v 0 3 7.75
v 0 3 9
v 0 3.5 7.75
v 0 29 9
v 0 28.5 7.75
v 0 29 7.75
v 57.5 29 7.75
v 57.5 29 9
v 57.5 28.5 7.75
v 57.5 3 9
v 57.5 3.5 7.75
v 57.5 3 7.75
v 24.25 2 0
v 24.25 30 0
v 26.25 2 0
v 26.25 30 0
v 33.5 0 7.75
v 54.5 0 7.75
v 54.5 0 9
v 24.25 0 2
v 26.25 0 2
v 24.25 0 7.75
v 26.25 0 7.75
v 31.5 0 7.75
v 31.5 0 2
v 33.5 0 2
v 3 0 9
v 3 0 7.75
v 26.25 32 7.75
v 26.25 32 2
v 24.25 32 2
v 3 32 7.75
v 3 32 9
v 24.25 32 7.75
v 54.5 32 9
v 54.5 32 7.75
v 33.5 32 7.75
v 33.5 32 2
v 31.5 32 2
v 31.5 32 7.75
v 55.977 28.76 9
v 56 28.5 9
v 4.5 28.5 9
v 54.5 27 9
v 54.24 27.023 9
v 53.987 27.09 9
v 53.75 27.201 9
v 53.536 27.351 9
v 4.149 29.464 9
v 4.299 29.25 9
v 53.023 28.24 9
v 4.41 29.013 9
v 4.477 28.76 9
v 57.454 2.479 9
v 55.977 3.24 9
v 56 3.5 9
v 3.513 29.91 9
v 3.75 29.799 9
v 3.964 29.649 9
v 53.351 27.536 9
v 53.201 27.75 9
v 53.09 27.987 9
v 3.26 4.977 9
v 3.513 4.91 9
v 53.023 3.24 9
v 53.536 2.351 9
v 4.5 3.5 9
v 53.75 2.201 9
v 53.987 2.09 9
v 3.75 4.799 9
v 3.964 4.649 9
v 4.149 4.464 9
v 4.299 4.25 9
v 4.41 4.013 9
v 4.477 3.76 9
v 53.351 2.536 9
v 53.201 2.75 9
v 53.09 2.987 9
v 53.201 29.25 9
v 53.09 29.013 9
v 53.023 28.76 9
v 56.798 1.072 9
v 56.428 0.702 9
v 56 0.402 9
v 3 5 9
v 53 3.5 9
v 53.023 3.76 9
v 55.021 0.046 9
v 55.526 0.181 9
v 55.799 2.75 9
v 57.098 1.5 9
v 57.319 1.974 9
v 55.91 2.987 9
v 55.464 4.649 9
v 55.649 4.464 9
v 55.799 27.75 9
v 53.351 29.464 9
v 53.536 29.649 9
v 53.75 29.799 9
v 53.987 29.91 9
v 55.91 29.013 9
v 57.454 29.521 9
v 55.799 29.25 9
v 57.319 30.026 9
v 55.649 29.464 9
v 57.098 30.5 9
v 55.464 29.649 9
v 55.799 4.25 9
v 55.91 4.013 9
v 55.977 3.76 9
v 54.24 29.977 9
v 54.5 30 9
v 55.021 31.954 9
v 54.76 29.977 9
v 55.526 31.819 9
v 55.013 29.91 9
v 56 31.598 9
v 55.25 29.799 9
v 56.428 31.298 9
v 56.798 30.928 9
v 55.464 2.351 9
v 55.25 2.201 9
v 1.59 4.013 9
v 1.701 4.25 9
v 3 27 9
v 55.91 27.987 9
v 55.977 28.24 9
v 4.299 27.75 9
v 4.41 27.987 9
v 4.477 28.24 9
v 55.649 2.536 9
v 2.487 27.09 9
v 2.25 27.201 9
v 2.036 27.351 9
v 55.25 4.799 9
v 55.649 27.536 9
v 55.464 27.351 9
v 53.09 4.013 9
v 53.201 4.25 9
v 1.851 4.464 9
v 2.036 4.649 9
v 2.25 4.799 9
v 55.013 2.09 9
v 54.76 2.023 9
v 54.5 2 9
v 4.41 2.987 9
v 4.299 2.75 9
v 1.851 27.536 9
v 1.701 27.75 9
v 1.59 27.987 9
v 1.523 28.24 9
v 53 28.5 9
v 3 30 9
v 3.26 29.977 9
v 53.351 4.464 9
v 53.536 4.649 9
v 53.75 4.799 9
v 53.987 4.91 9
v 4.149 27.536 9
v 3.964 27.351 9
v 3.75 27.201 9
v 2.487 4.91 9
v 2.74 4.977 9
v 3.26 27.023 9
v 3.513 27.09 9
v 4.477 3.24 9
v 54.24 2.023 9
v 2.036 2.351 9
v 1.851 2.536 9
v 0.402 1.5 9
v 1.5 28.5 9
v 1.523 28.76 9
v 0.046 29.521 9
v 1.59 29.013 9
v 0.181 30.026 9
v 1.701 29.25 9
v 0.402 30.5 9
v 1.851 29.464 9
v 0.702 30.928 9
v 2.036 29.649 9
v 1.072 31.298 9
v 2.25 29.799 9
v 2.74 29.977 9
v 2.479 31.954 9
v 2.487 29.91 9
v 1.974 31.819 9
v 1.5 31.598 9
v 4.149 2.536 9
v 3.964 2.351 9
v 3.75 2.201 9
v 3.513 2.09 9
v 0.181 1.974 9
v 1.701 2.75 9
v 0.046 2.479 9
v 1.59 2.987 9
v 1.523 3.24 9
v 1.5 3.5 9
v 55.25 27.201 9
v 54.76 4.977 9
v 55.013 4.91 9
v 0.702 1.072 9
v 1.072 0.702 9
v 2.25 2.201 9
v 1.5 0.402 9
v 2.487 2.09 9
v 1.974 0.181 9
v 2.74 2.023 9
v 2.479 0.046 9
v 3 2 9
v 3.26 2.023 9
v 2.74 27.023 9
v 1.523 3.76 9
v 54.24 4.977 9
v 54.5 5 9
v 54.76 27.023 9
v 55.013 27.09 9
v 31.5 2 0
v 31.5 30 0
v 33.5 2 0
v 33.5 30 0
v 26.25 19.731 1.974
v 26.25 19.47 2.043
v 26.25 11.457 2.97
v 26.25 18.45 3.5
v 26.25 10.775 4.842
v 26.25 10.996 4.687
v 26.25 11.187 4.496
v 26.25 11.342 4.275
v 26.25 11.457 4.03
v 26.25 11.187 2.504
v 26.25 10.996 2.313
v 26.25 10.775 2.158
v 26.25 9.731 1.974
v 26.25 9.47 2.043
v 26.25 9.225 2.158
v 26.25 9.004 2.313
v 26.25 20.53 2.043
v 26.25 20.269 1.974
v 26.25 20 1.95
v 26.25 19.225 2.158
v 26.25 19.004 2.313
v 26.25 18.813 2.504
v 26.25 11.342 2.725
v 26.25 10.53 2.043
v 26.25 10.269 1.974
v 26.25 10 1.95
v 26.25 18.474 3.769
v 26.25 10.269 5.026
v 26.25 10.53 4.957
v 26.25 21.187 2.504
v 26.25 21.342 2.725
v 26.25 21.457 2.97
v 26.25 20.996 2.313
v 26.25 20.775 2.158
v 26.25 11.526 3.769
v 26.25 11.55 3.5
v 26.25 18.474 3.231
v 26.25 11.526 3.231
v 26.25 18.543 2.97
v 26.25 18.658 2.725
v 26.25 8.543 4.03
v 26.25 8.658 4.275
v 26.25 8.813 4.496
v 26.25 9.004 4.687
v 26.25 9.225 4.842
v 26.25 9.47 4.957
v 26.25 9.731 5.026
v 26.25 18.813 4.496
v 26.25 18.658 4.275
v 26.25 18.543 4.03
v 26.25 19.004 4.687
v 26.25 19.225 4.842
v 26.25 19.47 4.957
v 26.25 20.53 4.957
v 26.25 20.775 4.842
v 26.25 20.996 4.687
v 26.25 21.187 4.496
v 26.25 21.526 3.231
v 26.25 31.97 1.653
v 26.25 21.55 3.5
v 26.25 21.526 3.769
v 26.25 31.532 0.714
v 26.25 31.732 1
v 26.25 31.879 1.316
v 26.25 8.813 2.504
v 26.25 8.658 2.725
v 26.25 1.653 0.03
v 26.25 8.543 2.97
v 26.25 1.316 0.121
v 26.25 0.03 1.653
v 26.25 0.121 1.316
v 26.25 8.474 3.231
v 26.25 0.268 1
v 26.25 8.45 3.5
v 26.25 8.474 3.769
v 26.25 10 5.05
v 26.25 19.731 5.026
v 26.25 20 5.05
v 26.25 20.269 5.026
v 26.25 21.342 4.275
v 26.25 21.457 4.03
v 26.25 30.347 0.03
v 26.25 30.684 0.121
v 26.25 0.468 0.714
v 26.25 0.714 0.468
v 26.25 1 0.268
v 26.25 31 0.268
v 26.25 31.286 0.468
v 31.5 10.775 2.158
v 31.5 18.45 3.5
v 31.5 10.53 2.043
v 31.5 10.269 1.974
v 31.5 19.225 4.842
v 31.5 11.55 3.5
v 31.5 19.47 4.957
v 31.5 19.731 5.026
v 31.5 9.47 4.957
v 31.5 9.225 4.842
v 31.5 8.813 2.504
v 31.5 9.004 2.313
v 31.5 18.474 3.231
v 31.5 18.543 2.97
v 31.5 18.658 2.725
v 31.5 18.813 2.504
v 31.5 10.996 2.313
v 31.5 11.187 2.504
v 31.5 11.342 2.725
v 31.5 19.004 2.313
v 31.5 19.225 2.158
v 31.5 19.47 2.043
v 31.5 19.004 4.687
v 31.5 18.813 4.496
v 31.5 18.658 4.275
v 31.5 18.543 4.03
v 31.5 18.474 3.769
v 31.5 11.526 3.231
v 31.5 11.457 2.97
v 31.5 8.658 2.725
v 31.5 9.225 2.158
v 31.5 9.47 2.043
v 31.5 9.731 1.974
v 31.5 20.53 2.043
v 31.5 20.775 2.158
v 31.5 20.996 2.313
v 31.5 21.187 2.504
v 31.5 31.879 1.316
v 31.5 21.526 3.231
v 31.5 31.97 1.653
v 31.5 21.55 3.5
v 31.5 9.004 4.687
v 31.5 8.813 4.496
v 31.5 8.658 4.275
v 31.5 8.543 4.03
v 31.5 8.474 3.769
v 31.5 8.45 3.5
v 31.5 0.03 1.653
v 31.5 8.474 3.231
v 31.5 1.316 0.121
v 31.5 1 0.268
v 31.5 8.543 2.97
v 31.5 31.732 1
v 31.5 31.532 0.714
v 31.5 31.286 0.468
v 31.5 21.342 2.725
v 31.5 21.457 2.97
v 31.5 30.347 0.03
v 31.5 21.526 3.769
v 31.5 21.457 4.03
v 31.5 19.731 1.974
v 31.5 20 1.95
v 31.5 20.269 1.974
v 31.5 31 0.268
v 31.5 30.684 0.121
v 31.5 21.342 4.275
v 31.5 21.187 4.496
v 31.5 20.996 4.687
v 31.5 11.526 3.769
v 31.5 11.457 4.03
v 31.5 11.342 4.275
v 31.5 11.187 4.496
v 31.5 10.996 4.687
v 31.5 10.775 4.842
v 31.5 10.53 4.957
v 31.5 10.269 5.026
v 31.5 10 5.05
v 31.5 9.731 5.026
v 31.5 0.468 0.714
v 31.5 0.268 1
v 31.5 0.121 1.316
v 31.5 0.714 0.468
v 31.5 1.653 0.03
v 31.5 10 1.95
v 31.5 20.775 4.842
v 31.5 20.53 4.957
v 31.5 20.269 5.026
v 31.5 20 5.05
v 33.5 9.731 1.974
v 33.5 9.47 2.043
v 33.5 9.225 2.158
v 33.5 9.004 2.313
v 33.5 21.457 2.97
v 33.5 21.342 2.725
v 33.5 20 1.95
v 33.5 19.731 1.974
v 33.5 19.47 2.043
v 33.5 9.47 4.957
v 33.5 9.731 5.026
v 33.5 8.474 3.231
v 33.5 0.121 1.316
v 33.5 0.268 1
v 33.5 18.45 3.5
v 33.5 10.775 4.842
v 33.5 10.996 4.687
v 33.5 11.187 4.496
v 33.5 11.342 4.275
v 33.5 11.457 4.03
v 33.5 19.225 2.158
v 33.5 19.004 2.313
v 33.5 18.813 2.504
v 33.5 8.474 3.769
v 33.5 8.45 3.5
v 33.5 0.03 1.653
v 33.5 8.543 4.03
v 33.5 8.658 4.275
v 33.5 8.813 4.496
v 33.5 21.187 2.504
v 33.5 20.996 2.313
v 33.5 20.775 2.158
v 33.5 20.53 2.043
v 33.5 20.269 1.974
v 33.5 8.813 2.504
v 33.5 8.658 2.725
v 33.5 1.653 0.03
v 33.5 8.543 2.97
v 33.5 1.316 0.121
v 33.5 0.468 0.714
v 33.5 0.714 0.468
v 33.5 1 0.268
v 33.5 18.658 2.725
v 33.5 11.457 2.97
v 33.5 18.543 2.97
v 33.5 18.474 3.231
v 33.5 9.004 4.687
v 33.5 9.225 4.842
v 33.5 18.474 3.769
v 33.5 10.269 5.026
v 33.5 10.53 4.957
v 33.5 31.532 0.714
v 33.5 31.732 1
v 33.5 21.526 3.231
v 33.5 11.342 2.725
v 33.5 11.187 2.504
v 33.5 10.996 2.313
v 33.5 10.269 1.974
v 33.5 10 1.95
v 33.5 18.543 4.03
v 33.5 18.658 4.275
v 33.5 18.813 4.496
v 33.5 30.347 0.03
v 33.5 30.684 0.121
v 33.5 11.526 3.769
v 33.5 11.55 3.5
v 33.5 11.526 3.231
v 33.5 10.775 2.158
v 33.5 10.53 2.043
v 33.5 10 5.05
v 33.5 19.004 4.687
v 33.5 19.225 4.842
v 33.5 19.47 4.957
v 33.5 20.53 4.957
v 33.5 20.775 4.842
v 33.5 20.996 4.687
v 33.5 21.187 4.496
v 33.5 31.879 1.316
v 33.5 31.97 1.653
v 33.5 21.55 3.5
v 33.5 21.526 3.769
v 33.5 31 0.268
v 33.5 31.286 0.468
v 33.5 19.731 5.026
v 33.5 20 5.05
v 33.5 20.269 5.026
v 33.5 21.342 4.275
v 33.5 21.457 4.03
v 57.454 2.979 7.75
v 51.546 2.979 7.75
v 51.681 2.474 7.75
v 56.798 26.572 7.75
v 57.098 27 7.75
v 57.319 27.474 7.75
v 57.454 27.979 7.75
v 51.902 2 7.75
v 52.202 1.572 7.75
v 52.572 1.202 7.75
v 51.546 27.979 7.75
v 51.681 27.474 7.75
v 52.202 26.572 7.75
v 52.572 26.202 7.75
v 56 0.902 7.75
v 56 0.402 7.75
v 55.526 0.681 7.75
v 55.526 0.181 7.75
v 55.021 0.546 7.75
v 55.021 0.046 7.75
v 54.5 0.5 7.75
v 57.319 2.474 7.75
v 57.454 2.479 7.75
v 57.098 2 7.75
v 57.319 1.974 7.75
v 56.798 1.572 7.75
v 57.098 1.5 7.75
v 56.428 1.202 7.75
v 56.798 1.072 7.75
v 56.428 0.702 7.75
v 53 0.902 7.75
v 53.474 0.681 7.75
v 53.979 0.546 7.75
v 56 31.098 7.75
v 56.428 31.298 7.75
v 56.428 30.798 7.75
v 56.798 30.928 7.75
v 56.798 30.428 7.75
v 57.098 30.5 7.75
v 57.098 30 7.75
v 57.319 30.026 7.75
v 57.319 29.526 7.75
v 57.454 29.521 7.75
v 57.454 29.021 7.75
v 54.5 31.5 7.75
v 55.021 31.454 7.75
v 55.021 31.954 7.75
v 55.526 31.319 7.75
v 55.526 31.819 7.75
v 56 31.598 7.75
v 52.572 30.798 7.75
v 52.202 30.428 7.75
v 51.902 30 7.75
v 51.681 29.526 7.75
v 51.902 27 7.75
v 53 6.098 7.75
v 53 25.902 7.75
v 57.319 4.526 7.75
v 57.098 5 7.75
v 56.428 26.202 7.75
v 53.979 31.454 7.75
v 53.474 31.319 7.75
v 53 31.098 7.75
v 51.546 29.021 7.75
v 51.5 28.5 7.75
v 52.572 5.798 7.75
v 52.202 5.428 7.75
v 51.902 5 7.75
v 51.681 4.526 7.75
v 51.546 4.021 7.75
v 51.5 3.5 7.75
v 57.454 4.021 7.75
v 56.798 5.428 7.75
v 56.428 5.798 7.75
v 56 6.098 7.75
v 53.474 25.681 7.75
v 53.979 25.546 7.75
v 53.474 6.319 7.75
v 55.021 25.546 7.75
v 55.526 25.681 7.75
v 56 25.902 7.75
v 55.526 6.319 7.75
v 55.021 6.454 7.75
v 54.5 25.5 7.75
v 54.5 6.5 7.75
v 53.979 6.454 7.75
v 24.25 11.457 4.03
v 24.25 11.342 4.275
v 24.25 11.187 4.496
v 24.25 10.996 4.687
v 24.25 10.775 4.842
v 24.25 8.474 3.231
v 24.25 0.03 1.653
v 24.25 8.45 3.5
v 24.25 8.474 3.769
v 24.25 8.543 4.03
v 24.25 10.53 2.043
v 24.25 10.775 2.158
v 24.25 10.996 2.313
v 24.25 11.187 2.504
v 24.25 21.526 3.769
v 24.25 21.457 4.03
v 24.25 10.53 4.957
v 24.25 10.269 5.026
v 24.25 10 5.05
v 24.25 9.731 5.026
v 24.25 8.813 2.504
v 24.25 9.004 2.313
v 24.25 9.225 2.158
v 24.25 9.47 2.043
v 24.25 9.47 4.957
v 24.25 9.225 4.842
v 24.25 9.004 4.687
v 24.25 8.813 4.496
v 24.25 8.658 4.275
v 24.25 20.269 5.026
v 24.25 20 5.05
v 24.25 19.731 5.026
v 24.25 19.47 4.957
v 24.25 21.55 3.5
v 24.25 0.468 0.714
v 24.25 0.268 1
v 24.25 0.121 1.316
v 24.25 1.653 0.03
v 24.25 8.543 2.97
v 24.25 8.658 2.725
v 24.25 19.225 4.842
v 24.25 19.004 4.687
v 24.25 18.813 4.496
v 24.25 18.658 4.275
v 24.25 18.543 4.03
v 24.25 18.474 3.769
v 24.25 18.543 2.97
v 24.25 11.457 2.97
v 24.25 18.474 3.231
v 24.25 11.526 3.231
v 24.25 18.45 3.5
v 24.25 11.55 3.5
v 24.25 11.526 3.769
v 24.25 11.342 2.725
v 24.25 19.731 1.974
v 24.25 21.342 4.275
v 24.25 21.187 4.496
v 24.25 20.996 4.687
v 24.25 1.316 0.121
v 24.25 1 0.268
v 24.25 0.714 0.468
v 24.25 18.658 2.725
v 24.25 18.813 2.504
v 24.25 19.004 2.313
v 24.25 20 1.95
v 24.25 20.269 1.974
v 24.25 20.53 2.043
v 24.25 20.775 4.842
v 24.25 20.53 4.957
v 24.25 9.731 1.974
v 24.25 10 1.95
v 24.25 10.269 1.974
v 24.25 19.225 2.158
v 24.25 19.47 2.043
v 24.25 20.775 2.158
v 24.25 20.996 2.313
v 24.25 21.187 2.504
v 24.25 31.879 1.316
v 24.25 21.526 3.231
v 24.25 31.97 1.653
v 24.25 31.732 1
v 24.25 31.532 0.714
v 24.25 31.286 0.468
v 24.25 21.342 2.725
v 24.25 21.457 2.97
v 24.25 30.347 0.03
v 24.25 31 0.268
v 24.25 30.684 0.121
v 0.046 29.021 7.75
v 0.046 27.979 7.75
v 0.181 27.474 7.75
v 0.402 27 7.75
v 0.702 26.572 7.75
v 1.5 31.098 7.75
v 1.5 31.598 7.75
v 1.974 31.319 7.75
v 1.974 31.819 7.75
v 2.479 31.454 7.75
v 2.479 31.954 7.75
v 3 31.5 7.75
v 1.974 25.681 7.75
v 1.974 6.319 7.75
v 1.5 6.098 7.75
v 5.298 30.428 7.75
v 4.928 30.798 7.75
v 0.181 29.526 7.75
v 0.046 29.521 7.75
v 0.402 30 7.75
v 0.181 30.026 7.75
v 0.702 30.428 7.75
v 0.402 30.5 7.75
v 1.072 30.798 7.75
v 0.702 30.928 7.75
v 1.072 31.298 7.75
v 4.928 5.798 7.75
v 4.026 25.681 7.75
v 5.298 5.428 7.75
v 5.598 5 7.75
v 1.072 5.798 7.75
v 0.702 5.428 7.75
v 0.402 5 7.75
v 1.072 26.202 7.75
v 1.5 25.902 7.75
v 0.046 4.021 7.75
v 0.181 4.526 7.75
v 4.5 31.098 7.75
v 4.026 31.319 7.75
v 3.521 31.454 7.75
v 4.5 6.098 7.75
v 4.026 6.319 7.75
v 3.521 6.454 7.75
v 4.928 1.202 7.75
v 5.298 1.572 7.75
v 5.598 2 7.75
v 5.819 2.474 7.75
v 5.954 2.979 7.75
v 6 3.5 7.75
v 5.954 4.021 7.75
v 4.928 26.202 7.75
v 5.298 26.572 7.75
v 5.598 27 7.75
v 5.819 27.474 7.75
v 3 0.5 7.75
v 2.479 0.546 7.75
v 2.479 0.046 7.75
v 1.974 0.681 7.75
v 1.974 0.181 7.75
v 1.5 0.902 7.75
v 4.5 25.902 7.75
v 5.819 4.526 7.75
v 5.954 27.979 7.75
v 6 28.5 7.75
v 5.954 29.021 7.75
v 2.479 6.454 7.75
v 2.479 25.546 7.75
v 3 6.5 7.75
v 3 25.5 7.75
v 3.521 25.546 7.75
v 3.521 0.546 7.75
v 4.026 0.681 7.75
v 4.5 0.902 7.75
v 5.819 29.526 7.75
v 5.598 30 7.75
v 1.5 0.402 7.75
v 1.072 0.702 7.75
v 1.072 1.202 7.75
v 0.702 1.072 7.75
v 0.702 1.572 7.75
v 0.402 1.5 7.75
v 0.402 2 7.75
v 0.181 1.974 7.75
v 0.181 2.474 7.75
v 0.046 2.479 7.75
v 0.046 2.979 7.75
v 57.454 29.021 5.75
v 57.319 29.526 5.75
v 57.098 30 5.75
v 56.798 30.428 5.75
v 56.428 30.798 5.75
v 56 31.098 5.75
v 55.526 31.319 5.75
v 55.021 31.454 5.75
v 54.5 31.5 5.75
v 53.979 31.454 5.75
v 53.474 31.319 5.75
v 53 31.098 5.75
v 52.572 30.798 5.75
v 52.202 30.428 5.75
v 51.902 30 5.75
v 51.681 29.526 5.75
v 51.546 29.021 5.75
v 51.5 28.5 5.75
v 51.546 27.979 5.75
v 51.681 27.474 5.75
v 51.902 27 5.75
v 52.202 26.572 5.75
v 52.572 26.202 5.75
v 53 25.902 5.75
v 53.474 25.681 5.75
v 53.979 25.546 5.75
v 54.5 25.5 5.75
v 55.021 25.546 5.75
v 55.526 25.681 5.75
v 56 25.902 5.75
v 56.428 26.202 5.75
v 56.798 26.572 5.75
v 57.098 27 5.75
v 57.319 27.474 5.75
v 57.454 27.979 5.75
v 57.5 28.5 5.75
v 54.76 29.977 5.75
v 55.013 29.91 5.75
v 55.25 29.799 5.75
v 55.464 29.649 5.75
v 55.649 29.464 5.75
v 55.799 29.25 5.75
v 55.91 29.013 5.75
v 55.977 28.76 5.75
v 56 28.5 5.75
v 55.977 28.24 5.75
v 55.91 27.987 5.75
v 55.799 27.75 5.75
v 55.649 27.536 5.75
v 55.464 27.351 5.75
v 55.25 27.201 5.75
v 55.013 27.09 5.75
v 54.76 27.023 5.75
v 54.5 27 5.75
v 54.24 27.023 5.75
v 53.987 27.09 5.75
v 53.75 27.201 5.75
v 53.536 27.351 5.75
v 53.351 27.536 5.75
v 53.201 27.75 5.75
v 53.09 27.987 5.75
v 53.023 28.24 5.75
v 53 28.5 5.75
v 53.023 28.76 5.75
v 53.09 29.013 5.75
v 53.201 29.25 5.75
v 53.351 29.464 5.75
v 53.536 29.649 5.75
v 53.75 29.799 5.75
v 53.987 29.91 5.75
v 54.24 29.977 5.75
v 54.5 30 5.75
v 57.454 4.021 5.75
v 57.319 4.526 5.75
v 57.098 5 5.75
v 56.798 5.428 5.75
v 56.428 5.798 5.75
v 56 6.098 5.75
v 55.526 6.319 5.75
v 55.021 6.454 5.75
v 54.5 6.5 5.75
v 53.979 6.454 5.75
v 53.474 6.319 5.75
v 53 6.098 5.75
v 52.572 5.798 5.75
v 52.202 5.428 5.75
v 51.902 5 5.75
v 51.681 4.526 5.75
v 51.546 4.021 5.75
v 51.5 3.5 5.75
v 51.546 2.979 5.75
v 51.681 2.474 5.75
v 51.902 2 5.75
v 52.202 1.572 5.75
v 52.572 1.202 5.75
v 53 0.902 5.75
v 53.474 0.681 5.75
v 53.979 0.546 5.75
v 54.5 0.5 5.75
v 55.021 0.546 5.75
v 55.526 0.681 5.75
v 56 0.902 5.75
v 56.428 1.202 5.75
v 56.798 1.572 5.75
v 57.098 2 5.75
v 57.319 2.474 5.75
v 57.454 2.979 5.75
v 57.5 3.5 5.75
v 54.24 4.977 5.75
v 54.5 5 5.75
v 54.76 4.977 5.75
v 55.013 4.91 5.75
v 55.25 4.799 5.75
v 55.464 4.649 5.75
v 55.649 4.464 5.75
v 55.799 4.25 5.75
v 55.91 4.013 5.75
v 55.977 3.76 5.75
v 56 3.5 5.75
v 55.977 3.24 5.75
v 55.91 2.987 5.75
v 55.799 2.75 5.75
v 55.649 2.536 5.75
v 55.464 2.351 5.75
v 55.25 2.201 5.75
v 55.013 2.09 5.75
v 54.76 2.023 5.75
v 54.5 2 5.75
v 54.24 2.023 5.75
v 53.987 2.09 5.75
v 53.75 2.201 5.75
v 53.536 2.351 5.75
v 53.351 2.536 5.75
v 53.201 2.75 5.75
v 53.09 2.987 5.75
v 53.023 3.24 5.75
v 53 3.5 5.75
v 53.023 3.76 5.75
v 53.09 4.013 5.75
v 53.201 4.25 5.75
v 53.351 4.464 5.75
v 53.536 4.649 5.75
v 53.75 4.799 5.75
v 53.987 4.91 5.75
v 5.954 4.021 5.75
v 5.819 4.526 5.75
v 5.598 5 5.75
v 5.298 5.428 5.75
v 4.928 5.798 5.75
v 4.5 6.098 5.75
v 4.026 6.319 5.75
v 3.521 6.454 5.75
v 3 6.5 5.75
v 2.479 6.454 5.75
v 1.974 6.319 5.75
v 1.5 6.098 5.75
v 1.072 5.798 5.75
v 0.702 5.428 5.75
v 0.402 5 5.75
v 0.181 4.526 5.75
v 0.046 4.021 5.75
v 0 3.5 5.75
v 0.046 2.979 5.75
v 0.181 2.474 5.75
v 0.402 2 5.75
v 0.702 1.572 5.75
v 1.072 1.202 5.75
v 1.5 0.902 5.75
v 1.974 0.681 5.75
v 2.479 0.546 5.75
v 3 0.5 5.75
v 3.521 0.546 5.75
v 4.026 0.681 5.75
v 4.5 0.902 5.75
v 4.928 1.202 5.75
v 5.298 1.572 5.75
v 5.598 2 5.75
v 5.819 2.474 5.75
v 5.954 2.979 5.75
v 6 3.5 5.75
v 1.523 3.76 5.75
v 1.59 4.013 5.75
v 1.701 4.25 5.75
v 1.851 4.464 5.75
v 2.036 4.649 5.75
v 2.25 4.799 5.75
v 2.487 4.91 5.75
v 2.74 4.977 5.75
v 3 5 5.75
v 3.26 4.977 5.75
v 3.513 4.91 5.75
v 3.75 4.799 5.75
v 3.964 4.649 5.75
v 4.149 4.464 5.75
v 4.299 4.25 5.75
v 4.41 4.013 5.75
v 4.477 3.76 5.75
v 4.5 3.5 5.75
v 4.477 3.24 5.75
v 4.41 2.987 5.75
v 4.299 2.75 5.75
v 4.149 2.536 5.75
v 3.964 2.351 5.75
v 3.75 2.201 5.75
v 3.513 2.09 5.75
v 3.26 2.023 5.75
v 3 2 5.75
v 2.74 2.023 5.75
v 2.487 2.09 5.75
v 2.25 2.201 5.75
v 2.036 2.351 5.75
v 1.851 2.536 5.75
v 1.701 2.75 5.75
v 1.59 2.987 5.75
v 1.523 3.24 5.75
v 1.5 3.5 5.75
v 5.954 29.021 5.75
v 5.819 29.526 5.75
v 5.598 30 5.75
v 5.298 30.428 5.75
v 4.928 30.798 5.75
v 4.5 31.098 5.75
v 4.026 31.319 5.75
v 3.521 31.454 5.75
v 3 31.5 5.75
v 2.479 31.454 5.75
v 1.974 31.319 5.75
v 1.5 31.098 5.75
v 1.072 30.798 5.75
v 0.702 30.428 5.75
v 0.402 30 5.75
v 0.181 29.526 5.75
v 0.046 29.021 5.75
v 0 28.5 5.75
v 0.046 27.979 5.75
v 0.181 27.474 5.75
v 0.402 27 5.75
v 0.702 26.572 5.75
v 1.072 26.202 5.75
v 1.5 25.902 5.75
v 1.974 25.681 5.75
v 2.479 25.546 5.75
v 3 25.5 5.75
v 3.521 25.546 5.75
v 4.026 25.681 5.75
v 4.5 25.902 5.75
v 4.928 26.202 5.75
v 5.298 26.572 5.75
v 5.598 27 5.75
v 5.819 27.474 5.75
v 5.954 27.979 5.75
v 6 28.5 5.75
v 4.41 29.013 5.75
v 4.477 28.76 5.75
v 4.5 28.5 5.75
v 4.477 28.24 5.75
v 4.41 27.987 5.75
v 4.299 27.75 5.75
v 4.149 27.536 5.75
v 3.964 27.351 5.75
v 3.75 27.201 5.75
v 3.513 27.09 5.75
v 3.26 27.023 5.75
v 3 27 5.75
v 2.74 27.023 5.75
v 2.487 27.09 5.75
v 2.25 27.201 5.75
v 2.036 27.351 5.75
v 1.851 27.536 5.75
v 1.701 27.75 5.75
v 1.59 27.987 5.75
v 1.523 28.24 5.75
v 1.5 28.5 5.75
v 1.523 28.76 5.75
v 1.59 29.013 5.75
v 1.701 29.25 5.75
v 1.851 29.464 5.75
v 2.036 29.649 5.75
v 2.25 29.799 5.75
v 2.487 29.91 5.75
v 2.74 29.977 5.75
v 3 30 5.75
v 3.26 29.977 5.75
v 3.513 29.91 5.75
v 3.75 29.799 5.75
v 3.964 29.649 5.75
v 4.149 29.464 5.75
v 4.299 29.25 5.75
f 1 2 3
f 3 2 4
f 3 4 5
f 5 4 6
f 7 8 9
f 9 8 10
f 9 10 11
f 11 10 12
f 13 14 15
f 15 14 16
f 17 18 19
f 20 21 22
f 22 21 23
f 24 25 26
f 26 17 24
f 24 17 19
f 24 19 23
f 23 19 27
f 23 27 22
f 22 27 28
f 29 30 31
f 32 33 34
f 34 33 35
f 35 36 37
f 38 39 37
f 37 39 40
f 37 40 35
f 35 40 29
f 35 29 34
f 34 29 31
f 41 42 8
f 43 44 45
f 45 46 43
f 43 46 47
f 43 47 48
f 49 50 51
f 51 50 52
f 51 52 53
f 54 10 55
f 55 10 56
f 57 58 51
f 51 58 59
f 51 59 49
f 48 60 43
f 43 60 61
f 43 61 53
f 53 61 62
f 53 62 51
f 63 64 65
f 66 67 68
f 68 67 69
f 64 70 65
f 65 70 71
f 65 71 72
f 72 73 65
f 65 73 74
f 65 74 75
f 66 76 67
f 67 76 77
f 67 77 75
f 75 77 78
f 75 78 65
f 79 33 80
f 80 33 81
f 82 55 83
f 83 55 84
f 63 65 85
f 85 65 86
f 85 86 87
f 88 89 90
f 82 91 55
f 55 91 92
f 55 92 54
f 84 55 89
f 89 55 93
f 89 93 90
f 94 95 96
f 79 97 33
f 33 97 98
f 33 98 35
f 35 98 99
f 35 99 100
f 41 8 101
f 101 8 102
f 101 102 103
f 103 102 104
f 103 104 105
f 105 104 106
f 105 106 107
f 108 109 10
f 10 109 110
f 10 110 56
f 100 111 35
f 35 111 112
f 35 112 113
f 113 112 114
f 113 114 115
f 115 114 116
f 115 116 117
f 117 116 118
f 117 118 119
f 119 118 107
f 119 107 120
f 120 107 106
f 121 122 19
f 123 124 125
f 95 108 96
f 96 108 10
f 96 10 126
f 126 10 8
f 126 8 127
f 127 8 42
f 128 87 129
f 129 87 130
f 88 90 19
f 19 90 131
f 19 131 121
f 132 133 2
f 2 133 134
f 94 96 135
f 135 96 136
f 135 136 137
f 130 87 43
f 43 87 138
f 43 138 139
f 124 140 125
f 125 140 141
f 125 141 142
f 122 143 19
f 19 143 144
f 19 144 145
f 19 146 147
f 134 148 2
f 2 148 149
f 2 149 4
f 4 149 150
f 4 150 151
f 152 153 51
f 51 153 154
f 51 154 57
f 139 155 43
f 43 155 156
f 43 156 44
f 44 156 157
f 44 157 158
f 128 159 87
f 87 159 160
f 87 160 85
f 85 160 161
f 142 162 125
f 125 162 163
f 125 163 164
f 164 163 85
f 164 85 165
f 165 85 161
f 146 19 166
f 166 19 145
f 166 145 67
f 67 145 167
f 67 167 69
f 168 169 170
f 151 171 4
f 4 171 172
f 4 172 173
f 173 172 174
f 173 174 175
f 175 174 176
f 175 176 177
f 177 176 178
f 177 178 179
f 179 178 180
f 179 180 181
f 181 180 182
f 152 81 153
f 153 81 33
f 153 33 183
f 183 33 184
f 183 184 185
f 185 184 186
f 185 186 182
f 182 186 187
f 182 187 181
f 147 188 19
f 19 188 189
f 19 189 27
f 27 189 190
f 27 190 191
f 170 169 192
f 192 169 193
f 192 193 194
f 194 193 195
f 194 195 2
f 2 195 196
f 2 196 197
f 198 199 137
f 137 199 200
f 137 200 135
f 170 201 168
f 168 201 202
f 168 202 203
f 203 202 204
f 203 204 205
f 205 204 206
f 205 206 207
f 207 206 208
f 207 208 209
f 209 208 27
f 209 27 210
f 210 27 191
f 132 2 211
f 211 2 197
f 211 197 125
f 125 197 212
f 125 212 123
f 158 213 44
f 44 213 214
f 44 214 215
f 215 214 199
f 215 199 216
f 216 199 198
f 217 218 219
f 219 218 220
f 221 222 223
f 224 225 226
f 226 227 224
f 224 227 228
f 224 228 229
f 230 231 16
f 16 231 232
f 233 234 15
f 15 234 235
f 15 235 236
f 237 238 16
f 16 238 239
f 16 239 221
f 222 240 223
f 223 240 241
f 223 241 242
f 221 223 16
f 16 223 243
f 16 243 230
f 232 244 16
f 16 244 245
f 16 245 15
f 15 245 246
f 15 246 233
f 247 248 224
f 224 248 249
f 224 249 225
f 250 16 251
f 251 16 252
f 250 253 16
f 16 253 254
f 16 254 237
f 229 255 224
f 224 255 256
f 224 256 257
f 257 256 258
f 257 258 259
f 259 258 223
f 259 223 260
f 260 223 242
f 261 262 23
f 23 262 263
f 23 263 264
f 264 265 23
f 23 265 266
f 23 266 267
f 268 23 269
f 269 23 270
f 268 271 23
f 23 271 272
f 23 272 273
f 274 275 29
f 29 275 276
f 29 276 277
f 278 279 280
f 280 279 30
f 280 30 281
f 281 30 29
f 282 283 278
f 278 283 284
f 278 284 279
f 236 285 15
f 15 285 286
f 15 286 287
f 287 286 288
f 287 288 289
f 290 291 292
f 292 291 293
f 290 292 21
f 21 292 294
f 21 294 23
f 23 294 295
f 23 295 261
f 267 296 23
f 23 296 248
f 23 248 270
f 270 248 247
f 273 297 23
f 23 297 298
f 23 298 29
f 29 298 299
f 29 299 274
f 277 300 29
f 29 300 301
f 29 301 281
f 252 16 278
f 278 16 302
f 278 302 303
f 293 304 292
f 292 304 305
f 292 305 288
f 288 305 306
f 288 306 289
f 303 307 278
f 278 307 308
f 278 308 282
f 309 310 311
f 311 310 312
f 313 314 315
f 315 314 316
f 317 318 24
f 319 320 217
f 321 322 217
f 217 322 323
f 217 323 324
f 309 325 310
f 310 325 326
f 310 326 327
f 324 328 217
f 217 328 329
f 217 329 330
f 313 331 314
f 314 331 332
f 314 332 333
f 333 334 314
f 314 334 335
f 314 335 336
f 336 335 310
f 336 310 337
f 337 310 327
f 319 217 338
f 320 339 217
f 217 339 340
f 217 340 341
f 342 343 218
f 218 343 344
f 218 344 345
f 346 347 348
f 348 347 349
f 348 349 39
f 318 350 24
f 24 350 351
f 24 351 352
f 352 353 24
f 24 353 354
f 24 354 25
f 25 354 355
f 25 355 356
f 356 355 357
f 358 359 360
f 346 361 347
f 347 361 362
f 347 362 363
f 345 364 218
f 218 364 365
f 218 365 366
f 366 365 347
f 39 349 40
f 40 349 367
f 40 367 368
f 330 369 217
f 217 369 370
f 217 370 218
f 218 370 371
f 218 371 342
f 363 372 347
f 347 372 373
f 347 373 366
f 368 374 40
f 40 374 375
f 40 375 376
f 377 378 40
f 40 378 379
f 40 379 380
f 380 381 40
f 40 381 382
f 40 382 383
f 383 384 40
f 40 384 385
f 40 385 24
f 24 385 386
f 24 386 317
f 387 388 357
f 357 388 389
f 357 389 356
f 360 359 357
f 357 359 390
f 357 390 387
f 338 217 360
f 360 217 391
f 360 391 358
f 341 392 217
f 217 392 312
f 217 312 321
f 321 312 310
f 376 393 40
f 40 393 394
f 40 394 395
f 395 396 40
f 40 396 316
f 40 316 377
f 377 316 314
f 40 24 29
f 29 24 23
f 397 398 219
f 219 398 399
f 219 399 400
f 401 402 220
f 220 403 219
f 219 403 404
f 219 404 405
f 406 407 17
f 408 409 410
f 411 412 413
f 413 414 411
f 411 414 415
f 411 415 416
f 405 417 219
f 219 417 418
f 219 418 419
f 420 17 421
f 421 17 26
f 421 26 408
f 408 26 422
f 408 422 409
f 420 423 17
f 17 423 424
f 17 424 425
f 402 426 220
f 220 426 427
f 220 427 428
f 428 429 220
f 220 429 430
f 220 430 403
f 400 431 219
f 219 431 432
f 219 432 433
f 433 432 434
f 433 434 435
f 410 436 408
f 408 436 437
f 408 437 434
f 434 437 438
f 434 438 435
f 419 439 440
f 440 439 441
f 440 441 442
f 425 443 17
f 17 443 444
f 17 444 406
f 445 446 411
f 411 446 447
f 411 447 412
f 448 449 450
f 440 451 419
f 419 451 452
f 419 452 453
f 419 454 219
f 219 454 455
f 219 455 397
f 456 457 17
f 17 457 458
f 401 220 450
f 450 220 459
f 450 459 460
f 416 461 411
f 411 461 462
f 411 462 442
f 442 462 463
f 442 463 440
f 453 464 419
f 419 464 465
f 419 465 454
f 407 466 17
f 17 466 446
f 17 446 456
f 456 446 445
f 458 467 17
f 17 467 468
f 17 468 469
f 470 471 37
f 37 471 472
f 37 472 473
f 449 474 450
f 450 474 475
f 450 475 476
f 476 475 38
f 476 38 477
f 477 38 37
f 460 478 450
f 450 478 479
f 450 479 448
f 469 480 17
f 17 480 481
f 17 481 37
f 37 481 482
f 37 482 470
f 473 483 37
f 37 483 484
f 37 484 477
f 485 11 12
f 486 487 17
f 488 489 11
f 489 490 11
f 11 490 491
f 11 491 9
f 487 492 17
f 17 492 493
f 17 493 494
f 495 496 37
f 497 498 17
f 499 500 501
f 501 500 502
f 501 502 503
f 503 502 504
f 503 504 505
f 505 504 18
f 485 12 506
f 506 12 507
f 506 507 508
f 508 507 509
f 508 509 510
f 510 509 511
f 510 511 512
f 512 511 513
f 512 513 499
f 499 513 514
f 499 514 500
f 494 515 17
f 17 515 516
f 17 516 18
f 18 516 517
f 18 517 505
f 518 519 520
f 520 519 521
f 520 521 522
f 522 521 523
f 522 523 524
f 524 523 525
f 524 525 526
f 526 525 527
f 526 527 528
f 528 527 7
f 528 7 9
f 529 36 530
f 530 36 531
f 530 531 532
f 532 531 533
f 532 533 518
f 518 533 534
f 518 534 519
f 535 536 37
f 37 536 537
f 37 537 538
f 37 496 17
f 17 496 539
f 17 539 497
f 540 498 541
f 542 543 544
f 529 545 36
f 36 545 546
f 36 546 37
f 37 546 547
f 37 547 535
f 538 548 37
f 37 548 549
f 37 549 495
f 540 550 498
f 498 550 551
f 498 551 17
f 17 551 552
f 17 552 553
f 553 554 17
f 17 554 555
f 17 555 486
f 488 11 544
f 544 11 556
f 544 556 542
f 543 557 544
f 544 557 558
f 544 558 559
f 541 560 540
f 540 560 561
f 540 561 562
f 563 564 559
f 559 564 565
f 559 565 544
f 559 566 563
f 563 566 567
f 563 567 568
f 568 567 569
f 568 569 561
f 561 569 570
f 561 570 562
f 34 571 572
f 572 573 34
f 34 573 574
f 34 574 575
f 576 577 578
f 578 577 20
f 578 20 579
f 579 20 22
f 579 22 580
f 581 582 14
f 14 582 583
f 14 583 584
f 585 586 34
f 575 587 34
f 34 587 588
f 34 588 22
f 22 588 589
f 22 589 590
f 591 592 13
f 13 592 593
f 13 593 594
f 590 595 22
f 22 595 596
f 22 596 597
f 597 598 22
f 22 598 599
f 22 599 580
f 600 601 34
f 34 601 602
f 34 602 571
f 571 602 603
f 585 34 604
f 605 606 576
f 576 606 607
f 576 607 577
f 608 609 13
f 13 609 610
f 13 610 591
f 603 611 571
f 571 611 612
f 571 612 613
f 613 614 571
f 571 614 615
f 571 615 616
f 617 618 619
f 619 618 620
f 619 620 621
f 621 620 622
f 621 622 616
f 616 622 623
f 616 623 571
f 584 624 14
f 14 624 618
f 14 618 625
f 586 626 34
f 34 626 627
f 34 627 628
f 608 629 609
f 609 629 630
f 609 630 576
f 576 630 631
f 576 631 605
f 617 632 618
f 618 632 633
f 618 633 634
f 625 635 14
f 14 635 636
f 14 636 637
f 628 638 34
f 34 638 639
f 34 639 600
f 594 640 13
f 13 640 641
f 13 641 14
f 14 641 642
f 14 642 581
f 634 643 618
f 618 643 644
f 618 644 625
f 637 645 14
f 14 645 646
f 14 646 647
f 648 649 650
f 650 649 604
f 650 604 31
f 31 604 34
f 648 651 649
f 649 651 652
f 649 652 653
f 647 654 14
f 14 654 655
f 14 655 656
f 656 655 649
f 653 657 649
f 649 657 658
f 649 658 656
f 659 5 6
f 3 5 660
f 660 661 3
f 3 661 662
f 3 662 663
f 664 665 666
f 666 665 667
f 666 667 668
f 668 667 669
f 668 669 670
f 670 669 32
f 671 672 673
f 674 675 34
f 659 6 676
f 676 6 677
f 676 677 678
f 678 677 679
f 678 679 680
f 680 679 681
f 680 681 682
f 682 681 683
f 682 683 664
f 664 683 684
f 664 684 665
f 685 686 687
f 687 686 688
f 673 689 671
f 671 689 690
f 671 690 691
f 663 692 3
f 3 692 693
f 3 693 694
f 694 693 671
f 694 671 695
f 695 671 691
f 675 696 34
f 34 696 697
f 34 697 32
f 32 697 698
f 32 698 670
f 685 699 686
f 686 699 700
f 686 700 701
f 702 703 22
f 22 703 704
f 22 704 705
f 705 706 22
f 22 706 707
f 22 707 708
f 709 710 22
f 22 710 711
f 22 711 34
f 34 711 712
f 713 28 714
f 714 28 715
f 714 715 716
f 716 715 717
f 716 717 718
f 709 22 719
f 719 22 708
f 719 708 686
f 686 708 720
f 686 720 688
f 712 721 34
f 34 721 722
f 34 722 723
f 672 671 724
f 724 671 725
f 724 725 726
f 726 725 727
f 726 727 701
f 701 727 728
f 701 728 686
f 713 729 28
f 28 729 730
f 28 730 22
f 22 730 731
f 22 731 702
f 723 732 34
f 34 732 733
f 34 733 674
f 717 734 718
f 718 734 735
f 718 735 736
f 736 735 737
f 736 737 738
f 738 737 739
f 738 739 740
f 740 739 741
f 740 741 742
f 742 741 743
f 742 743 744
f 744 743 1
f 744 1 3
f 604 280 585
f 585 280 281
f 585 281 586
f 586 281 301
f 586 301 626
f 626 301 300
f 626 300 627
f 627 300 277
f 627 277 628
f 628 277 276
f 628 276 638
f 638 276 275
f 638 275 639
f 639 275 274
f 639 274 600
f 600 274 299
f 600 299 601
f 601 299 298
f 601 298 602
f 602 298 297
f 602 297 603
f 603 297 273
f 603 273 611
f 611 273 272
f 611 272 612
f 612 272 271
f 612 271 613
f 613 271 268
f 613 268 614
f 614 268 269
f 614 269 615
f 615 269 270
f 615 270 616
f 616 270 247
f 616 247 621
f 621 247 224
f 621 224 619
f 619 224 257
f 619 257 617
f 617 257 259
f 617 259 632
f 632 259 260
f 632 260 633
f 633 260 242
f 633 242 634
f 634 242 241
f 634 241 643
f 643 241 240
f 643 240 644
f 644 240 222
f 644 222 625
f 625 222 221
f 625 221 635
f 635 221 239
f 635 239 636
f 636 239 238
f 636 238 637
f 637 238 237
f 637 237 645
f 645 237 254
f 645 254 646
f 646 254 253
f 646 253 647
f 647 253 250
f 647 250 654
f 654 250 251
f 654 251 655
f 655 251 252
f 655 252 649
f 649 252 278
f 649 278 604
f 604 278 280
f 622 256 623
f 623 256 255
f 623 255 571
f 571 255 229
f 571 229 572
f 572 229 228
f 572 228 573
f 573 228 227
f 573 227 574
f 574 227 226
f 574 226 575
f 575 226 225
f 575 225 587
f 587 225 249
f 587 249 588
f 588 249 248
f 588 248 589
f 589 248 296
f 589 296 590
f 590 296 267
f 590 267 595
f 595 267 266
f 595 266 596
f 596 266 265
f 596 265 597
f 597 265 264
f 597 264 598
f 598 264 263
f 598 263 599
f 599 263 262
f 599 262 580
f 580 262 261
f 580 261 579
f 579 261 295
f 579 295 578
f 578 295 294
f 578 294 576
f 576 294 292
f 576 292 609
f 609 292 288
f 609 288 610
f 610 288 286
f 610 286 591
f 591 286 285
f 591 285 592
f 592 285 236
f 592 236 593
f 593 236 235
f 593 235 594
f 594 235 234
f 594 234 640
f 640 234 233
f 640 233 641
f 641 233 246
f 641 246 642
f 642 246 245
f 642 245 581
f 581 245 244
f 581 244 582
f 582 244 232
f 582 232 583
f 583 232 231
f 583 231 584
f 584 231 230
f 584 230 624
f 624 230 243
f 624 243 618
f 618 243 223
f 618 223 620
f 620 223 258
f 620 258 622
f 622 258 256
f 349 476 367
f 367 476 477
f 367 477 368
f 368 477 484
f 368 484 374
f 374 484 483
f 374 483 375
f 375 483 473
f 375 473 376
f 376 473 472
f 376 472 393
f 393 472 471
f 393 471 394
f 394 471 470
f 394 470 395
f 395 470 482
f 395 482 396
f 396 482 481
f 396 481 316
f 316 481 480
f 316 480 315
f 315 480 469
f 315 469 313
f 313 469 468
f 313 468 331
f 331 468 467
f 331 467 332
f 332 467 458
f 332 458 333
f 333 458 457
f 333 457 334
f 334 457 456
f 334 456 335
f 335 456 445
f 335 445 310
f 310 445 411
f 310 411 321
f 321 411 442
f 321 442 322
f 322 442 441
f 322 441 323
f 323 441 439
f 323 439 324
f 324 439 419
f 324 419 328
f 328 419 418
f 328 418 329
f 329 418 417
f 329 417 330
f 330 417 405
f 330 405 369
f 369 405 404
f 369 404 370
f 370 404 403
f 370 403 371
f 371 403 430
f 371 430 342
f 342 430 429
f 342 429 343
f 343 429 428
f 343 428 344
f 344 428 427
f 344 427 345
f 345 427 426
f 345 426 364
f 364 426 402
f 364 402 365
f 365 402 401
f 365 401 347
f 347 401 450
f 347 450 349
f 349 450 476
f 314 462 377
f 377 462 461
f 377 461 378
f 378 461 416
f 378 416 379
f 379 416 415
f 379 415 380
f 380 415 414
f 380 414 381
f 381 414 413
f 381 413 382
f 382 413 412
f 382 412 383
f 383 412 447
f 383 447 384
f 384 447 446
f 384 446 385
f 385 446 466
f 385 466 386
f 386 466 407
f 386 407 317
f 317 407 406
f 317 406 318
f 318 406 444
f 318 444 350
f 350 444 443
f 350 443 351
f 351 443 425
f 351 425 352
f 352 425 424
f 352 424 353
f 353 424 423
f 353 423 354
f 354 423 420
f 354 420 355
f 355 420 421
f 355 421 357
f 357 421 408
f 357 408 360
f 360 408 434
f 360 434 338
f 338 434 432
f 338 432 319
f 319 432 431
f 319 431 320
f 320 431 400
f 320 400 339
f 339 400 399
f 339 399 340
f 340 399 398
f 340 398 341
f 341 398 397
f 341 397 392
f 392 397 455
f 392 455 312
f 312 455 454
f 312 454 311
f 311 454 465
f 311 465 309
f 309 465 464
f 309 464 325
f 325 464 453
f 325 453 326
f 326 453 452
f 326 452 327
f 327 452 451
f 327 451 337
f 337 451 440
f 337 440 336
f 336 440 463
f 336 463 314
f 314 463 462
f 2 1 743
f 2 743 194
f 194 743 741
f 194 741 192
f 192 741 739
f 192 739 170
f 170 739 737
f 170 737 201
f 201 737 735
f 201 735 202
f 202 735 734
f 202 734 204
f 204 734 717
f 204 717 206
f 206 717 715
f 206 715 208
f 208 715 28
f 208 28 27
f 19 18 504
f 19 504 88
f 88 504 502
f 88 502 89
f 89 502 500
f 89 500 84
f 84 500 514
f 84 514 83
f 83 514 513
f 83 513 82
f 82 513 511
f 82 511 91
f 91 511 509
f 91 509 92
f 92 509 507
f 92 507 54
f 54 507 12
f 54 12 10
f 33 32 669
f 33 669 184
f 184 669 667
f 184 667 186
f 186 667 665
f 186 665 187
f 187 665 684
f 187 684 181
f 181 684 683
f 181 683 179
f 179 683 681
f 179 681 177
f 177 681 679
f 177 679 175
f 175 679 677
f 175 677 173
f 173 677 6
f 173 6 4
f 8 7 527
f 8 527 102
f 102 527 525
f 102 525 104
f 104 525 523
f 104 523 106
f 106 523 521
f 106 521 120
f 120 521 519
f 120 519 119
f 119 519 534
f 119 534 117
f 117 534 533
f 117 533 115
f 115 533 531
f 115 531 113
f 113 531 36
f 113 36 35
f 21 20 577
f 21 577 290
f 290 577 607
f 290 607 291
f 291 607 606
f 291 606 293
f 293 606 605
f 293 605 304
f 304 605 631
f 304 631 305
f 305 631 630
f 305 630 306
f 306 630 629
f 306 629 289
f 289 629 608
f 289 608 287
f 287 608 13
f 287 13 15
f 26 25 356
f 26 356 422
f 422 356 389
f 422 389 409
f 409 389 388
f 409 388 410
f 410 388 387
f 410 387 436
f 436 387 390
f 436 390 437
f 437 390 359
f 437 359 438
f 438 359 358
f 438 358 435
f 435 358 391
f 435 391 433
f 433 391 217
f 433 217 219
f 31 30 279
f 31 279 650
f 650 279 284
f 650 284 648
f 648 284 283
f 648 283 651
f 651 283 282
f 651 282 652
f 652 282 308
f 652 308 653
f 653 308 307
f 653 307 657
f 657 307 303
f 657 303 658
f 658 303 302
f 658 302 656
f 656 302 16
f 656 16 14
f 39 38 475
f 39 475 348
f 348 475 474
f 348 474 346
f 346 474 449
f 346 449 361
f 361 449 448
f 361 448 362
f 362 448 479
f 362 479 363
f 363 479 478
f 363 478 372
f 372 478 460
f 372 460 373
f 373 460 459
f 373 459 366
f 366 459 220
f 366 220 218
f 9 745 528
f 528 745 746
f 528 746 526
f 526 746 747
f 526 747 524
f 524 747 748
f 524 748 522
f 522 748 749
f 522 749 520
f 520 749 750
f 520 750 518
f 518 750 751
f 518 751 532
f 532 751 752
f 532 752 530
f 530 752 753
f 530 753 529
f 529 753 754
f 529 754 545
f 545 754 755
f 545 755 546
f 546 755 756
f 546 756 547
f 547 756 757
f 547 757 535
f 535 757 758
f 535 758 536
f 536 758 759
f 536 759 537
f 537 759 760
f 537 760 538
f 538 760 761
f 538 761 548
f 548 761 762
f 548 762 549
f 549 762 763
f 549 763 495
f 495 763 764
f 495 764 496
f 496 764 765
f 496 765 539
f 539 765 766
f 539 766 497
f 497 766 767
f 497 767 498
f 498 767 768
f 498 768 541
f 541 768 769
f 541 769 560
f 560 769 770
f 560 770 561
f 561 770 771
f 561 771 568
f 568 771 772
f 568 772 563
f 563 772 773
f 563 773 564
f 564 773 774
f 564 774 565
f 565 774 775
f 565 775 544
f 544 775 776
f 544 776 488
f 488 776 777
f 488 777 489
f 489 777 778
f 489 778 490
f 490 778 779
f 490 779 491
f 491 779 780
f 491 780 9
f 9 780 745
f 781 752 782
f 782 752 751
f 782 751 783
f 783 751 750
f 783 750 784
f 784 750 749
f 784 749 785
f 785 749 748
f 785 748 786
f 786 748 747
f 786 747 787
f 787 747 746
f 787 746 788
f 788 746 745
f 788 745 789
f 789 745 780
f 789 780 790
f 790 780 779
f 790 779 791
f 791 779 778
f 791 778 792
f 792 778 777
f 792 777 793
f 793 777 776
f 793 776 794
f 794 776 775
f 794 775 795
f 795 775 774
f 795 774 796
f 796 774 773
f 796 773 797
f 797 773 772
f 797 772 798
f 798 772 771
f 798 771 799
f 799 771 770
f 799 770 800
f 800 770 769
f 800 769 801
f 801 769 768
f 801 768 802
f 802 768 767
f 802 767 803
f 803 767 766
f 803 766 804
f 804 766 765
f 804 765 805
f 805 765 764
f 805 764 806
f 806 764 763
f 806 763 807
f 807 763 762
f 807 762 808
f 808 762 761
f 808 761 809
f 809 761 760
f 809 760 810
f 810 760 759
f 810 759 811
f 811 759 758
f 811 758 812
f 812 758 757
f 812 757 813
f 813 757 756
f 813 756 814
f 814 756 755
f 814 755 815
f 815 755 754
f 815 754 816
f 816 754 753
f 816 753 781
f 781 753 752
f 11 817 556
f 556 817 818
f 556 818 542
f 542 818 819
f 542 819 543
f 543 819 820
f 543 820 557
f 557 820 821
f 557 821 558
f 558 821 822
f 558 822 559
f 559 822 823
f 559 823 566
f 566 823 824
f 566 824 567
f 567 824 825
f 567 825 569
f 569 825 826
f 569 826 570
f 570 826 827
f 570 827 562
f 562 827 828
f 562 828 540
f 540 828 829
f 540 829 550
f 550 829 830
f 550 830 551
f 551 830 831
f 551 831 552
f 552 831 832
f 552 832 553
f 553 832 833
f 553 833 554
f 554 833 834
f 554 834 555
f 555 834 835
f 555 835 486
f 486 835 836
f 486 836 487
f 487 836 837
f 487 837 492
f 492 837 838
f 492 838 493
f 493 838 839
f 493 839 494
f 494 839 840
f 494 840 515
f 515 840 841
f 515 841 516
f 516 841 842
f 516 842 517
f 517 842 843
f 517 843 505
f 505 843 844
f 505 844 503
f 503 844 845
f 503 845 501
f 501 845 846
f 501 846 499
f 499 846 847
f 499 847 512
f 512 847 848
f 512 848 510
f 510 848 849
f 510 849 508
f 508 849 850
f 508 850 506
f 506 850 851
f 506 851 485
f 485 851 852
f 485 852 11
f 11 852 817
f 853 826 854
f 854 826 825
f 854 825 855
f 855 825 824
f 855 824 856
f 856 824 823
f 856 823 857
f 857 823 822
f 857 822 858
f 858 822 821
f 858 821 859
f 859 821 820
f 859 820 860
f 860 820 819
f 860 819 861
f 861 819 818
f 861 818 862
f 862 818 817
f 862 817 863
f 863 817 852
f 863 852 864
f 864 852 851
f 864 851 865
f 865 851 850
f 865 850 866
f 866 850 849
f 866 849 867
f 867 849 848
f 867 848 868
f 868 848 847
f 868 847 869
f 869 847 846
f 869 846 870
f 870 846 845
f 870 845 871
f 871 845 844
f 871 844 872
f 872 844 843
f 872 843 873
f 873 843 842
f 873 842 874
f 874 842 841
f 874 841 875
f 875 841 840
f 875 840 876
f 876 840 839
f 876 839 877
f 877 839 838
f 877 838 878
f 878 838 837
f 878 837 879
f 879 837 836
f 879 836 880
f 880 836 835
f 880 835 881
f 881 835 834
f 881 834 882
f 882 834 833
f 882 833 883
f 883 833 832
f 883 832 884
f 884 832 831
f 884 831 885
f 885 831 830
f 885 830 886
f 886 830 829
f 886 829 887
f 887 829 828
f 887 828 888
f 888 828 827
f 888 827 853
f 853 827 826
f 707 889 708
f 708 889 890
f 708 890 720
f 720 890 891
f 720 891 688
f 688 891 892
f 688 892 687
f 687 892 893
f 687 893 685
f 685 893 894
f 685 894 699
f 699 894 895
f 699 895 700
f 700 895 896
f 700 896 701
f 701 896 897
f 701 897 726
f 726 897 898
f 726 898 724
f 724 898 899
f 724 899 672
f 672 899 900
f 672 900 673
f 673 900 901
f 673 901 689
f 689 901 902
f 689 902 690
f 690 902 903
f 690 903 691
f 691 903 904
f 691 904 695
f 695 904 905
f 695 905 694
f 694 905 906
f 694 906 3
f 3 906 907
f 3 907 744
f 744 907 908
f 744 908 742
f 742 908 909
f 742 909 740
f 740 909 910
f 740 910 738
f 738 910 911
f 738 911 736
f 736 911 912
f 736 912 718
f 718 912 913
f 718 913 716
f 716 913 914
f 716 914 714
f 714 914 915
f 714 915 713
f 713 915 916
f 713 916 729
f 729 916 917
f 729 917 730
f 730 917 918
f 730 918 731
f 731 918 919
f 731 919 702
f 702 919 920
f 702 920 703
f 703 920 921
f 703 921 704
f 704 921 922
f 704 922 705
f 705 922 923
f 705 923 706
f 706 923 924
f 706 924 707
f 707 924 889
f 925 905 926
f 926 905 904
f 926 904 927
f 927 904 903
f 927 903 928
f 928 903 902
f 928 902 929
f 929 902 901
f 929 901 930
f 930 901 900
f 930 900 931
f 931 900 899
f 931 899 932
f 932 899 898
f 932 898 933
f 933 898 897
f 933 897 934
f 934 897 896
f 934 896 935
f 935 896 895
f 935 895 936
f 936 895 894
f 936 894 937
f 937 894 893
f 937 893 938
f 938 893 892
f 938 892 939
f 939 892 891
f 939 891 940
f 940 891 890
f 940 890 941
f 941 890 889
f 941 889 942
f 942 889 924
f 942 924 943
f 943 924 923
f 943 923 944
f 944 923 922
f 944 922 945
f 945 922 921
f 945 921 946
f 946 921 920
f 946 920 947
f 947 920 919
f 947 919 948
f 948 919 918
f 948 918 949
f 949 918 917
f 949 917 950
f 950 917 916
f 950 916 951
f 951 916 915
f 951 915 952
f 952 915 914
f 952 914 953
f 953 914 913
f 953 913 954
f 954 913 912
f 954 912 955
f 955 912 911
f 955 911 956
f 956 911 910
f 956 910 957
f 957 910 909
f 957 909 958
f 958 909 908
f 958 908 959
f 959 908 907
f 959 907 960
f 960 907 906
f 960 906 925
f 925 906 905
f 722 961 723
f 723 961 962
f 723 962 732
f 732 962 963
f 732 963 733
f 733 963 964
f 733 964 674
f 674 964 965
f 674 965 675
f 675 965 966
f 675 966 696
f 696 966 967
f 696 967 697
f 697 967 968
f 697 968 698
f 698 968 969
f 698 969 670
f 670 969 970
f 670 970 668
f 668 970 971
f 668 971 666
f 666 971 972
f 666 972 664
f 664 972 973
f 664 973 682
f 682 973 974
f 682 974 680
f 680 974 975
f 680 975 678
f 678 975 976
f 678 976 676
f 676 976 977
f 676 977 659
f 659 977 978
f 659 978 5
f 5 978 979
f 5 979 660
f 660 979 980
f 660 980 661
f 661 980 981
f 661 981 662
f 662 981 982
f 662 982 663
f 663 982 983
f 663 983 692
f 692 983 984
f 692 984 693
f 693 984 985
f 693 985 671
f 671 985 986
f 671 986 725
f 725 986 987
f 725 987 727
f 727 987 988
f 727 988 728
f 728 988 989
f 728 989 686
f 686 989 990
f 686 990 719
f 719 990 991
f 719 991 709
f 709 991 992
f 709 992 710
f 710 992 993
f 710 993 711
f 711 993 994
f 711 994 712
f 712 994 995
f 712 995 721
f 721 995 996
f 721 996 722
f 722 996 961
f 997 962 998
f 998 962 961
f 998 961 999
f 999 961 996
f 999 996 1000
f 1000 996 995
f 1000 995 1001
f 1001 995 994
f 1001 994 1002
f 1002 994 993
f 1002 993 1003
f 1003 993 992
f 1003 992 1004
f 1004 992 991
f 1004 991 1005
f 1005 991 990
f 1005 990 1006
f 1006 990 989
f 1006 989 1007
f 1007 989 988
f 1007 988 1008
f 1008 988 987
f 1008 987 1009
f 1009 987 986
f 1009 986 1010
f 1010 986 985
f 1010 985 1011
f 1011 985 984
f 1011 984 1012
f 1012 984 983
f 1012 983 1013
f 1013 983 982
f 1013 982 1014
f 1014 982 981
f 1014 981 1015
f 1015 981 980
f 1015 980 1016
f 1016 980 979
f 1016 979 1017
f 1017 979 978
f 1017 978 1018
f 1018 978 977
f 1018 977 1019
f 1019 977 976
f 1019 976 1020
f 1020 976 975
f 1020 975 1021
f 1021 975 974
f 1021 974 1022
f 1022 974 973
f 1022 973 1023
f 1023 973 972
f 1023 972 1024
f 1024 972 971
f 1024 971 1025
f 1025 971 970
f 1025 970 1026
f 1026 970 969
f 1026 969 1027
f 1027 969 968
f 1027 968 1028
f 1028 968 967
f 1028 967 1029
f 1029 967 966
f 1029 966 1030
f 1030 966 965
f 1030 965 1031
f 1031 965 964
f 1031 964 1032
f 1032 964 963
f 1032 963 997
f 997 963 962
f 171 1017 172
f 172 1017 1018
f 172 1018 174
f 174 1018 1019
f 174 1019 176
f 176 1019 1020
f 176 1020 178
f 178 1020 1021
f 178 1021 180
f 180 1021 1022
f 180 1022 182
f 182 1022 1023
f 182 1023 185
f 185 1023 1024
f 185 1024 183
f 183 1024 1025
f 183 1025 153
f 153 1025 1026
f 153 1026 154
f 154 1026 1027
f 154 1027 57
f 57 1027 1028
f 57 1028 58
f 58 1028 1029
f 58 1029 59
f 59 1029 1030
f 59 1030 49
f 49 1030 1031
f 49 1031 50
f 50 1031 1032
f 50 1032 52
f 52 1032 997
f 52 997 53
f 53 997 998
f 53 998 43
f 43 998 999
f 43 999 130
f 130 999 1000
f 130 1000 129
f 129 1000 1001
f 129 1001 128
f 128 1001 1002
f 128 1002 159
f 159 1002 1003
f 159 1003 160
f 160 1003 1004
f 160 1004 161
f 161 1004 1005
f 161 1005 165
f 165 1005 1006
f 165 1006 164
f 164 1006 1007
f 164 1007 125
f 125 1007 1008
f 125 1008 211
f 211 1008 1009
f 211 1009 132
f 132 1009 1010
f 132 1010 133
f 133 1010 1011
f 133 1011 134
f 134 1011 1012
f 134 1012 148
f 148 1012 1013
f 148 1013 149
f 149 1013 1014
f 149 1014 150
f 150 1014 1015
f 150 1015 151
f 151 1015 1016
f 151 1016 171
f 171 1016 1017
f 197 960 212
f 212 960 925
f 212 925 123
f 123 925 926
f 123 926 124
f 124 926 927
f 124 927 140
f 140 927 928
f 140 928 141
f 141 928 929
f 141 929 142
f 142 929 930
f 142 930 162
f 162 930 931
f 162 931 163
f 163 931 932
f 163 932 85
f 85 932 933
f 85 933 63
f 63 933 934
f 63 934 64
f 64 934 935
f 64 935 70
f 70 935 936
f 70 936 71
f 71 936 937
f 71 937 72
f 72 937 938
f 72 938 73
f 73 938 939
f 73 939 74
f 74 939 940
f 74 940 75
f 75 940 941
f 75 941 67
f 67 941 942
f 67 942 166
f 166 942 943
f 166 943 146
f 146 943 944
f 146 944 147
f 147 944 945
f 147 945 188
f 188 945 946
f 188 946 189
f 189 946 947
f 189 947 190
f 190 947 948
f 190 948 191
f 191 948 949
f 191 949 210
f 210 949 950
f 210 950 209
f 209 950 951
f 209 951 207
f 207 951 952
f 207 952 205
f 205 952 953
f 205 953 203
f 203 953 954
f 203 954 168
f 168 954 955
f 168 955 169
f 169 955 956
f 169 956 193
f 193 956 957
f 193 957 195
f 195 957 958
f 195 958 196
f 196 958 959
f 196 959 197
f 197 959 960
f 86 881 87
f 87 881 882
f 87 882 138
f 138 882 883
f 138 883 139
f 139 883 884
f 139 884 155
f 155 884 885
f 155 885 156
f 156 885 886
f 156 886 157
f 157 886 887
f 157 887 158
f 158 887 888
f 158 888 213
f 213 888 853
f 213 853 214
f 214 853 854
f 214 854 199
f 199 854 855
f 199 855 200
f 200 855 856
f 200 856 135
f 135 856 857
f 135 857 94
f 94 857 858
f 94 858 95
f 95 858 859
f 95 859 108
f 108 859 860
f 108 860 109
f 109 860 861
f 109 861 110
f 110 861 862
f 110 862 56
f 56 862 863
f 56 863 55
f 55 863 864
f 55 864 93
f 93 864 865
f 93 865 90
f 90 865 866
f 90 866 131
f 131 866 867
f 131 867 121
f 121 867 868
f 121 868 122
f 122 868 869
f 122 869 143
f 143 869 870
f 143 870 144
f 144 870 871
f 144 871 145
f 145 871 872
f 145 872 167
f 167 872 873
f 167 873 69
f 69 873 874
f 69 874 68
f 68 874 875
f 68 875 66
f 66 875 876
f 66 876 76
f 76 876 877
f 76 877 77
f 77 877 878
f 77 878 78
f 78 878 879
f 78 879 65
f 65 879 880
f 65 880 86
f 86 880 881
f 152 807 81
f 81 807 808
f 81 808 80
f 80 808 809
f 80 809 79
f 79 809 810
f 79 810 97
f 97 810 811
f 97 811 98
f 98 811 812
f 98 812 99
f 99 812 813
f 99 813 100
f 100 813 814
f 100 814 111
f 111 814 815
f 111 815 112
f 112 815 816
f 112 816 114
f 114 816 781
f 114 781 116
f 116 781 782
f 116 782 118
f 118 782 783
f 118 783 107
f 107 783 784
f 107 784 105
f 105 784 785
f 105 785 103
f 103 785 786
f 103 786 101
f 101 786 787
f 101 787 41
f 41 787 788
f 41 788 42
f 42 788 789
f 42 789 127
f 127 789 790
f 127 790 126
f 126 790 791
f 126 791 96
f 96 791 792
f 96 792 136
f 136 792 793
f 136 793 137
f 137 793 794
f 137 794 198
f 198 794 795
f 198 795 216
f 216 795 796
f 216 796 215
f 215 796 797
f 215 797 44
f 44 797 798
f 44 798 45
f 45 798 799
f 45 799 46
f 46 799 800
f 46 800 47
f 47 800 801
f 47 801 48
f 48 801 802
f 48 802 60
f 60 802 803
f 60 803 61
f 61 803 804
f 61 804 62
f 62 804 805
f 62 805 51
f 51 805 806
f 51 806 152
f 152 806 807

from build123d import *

# Parameters (mm, degrees)
ESQUISSE1_W                  = 57.5
ESQUISSE1_H                  = 32
BOSS_EXTRU_1_DEPTH           = 9
ESQUISSE2_W                  = 24.25
ESQUISSE2_H                  = 32
ESQUISSE2_W_2                = 24
ESQUISSE2_W_3                = 5.25
ENL_V_MAT_EXTRU_1_DEPTH      = 7.75
ESQUISSE3_R                  = 1.55
ENL_V_MAT_EXTRU_2_DEPTH      = 34.5
CONG_1_R                     = 3
CONG_2_R                     = 2
ESQUISSE10_R                 = 3
BOSS_EXTRU_2_DEPTH           = 2
ESQUISSE9_R                  = 1.5
ENL_V_MAT_EXTRU_3_DEPTH      = 8.75
ENL_V_MAT_EXTRU_3_DEPTH_BACK = 2.25


with BuildPart() as part:
    # Esquisse1 → Boss.-Extru.1 (new body)
    with BuildSketch(Plane.XY):
        with Locations((28.75, 16)):
            Rectangle(ESQUISSE1_W, ESQUISSE1_H)
    extrude(amount=BOSS_EXTRU_1_DEPTH)

    # Esquisse2 → Enlèv. mat.-Extru.1 (cut)
    with BuildSketch(Plane(origin=(0, 0, 0), x_dir=(-1, 0, 0), z_dir=(0, 0, -1))):
        with Locations((-12.125, 16)):
            Rectangle(ESQUISSE2_W, ESQUISSE2_H)
        with Locations((-45.5, 16)):
            Rectangle(ESQUISSE2_W_2, ESQUISSE2_H)
        with Locations((-28.875, 16)):
            Rectangle(ESQUISSE2_W_3, ESQUISSE2_H)
    extrude(amount=-ENL_V_MAT_EXTRU_1_DEPTH, mode=Mode.SUBTRACT)

    # Esquisse3 → Enlèv. mat.-Extru.2 (cut, through all)
    with BuildSketch(Plane(origin=(33.5, 0, 0), x_dir=(0, 0, -1), z_dir=(1, 0, 0))):
        with Locations((-3.5, 10)):
            Circle(ESQUISSE3_R)
        with Locations((-3.5, 20)):
            Circle(ESQUISSE3_R)
    extrude(amount=-ENL_V_MAT_EXTRU_2_DEPTH, mode=Mode.SUBTRACT)

    # Congé1
    cong_1_edges = [part.edges().sort_by_distance(p)[0] for p in [
        (0, 32, 8.375),
        (57.5, 32, 8.375),
        (57.5, 0, 8.375),
        (0, 0, 8.375),
    ]]
    fillet(cong_1_edges, radius=CONG_1_R)

    # Congé2
    cong_2_edges = [part.edges().sort_by_distance(p)[0] for p in [
        (32.5, 32, 0),
        (25.25, 32, 0),
        (25.25, 0, 0),
        (32.5, 0, 0),
    ]]
    fillet(cong_2_edges, radius=CONG_2_R)

    # Esquisse10 → Boss.-Extru.2 (add)
    with BuildSketch(Plane(origin=(0, 0, 7.75), x_dir=(-1, 0, 0), z_dir=(0, 0, -1))):
        with Locations((-54.5, 28.5)):
            Circle(ESQUISSE10_R)
        with Locations((-54.5, 3.5)):
            Circle(ESQUISSE10_R)
        with Locations((-3, 3.5)):
            Circle(ESQUISSE10_R)
        with Locations((-3, 28.5)):
            Circle(ESQUISSE10_R)
    extrude(amount=BOSS_EXTRU_2_DEPTH)

    # Esquisse9 → Enlèv. mat.-Extru.3 (cut, two sides)
    with BuildSketch(Plane(origin=(0, 0, 7.75), x_dir=(-1, 0, 0), z_dir=(0, 0, -1))) as enl_v_mat_extru_3_sk:
        with Locations((-54.5, 28.5)):
            Circle(ESQUISSE9_R)
        with Locations((-3, 28.5)):
            Circle(ESQUISSE9_R)
        with Locations((-3, 3.5)):
            Circle(ESQUISSE9_R)
        with Locations((-54.5, 3.5)):
            Circle(ESQUISSE9_R)
    extrude(amount=ENL_V_MAT_EXTRU_3_DEPTH, mode=Mode.SUBTRACT)
    extrude(enl_v_mat_extru_3_sk.sketch, amount=-ENL_V_MAT_EXTRU_3_DEPTH_BACK, mode=Mode.SUBTRACT)


solid = part.part
